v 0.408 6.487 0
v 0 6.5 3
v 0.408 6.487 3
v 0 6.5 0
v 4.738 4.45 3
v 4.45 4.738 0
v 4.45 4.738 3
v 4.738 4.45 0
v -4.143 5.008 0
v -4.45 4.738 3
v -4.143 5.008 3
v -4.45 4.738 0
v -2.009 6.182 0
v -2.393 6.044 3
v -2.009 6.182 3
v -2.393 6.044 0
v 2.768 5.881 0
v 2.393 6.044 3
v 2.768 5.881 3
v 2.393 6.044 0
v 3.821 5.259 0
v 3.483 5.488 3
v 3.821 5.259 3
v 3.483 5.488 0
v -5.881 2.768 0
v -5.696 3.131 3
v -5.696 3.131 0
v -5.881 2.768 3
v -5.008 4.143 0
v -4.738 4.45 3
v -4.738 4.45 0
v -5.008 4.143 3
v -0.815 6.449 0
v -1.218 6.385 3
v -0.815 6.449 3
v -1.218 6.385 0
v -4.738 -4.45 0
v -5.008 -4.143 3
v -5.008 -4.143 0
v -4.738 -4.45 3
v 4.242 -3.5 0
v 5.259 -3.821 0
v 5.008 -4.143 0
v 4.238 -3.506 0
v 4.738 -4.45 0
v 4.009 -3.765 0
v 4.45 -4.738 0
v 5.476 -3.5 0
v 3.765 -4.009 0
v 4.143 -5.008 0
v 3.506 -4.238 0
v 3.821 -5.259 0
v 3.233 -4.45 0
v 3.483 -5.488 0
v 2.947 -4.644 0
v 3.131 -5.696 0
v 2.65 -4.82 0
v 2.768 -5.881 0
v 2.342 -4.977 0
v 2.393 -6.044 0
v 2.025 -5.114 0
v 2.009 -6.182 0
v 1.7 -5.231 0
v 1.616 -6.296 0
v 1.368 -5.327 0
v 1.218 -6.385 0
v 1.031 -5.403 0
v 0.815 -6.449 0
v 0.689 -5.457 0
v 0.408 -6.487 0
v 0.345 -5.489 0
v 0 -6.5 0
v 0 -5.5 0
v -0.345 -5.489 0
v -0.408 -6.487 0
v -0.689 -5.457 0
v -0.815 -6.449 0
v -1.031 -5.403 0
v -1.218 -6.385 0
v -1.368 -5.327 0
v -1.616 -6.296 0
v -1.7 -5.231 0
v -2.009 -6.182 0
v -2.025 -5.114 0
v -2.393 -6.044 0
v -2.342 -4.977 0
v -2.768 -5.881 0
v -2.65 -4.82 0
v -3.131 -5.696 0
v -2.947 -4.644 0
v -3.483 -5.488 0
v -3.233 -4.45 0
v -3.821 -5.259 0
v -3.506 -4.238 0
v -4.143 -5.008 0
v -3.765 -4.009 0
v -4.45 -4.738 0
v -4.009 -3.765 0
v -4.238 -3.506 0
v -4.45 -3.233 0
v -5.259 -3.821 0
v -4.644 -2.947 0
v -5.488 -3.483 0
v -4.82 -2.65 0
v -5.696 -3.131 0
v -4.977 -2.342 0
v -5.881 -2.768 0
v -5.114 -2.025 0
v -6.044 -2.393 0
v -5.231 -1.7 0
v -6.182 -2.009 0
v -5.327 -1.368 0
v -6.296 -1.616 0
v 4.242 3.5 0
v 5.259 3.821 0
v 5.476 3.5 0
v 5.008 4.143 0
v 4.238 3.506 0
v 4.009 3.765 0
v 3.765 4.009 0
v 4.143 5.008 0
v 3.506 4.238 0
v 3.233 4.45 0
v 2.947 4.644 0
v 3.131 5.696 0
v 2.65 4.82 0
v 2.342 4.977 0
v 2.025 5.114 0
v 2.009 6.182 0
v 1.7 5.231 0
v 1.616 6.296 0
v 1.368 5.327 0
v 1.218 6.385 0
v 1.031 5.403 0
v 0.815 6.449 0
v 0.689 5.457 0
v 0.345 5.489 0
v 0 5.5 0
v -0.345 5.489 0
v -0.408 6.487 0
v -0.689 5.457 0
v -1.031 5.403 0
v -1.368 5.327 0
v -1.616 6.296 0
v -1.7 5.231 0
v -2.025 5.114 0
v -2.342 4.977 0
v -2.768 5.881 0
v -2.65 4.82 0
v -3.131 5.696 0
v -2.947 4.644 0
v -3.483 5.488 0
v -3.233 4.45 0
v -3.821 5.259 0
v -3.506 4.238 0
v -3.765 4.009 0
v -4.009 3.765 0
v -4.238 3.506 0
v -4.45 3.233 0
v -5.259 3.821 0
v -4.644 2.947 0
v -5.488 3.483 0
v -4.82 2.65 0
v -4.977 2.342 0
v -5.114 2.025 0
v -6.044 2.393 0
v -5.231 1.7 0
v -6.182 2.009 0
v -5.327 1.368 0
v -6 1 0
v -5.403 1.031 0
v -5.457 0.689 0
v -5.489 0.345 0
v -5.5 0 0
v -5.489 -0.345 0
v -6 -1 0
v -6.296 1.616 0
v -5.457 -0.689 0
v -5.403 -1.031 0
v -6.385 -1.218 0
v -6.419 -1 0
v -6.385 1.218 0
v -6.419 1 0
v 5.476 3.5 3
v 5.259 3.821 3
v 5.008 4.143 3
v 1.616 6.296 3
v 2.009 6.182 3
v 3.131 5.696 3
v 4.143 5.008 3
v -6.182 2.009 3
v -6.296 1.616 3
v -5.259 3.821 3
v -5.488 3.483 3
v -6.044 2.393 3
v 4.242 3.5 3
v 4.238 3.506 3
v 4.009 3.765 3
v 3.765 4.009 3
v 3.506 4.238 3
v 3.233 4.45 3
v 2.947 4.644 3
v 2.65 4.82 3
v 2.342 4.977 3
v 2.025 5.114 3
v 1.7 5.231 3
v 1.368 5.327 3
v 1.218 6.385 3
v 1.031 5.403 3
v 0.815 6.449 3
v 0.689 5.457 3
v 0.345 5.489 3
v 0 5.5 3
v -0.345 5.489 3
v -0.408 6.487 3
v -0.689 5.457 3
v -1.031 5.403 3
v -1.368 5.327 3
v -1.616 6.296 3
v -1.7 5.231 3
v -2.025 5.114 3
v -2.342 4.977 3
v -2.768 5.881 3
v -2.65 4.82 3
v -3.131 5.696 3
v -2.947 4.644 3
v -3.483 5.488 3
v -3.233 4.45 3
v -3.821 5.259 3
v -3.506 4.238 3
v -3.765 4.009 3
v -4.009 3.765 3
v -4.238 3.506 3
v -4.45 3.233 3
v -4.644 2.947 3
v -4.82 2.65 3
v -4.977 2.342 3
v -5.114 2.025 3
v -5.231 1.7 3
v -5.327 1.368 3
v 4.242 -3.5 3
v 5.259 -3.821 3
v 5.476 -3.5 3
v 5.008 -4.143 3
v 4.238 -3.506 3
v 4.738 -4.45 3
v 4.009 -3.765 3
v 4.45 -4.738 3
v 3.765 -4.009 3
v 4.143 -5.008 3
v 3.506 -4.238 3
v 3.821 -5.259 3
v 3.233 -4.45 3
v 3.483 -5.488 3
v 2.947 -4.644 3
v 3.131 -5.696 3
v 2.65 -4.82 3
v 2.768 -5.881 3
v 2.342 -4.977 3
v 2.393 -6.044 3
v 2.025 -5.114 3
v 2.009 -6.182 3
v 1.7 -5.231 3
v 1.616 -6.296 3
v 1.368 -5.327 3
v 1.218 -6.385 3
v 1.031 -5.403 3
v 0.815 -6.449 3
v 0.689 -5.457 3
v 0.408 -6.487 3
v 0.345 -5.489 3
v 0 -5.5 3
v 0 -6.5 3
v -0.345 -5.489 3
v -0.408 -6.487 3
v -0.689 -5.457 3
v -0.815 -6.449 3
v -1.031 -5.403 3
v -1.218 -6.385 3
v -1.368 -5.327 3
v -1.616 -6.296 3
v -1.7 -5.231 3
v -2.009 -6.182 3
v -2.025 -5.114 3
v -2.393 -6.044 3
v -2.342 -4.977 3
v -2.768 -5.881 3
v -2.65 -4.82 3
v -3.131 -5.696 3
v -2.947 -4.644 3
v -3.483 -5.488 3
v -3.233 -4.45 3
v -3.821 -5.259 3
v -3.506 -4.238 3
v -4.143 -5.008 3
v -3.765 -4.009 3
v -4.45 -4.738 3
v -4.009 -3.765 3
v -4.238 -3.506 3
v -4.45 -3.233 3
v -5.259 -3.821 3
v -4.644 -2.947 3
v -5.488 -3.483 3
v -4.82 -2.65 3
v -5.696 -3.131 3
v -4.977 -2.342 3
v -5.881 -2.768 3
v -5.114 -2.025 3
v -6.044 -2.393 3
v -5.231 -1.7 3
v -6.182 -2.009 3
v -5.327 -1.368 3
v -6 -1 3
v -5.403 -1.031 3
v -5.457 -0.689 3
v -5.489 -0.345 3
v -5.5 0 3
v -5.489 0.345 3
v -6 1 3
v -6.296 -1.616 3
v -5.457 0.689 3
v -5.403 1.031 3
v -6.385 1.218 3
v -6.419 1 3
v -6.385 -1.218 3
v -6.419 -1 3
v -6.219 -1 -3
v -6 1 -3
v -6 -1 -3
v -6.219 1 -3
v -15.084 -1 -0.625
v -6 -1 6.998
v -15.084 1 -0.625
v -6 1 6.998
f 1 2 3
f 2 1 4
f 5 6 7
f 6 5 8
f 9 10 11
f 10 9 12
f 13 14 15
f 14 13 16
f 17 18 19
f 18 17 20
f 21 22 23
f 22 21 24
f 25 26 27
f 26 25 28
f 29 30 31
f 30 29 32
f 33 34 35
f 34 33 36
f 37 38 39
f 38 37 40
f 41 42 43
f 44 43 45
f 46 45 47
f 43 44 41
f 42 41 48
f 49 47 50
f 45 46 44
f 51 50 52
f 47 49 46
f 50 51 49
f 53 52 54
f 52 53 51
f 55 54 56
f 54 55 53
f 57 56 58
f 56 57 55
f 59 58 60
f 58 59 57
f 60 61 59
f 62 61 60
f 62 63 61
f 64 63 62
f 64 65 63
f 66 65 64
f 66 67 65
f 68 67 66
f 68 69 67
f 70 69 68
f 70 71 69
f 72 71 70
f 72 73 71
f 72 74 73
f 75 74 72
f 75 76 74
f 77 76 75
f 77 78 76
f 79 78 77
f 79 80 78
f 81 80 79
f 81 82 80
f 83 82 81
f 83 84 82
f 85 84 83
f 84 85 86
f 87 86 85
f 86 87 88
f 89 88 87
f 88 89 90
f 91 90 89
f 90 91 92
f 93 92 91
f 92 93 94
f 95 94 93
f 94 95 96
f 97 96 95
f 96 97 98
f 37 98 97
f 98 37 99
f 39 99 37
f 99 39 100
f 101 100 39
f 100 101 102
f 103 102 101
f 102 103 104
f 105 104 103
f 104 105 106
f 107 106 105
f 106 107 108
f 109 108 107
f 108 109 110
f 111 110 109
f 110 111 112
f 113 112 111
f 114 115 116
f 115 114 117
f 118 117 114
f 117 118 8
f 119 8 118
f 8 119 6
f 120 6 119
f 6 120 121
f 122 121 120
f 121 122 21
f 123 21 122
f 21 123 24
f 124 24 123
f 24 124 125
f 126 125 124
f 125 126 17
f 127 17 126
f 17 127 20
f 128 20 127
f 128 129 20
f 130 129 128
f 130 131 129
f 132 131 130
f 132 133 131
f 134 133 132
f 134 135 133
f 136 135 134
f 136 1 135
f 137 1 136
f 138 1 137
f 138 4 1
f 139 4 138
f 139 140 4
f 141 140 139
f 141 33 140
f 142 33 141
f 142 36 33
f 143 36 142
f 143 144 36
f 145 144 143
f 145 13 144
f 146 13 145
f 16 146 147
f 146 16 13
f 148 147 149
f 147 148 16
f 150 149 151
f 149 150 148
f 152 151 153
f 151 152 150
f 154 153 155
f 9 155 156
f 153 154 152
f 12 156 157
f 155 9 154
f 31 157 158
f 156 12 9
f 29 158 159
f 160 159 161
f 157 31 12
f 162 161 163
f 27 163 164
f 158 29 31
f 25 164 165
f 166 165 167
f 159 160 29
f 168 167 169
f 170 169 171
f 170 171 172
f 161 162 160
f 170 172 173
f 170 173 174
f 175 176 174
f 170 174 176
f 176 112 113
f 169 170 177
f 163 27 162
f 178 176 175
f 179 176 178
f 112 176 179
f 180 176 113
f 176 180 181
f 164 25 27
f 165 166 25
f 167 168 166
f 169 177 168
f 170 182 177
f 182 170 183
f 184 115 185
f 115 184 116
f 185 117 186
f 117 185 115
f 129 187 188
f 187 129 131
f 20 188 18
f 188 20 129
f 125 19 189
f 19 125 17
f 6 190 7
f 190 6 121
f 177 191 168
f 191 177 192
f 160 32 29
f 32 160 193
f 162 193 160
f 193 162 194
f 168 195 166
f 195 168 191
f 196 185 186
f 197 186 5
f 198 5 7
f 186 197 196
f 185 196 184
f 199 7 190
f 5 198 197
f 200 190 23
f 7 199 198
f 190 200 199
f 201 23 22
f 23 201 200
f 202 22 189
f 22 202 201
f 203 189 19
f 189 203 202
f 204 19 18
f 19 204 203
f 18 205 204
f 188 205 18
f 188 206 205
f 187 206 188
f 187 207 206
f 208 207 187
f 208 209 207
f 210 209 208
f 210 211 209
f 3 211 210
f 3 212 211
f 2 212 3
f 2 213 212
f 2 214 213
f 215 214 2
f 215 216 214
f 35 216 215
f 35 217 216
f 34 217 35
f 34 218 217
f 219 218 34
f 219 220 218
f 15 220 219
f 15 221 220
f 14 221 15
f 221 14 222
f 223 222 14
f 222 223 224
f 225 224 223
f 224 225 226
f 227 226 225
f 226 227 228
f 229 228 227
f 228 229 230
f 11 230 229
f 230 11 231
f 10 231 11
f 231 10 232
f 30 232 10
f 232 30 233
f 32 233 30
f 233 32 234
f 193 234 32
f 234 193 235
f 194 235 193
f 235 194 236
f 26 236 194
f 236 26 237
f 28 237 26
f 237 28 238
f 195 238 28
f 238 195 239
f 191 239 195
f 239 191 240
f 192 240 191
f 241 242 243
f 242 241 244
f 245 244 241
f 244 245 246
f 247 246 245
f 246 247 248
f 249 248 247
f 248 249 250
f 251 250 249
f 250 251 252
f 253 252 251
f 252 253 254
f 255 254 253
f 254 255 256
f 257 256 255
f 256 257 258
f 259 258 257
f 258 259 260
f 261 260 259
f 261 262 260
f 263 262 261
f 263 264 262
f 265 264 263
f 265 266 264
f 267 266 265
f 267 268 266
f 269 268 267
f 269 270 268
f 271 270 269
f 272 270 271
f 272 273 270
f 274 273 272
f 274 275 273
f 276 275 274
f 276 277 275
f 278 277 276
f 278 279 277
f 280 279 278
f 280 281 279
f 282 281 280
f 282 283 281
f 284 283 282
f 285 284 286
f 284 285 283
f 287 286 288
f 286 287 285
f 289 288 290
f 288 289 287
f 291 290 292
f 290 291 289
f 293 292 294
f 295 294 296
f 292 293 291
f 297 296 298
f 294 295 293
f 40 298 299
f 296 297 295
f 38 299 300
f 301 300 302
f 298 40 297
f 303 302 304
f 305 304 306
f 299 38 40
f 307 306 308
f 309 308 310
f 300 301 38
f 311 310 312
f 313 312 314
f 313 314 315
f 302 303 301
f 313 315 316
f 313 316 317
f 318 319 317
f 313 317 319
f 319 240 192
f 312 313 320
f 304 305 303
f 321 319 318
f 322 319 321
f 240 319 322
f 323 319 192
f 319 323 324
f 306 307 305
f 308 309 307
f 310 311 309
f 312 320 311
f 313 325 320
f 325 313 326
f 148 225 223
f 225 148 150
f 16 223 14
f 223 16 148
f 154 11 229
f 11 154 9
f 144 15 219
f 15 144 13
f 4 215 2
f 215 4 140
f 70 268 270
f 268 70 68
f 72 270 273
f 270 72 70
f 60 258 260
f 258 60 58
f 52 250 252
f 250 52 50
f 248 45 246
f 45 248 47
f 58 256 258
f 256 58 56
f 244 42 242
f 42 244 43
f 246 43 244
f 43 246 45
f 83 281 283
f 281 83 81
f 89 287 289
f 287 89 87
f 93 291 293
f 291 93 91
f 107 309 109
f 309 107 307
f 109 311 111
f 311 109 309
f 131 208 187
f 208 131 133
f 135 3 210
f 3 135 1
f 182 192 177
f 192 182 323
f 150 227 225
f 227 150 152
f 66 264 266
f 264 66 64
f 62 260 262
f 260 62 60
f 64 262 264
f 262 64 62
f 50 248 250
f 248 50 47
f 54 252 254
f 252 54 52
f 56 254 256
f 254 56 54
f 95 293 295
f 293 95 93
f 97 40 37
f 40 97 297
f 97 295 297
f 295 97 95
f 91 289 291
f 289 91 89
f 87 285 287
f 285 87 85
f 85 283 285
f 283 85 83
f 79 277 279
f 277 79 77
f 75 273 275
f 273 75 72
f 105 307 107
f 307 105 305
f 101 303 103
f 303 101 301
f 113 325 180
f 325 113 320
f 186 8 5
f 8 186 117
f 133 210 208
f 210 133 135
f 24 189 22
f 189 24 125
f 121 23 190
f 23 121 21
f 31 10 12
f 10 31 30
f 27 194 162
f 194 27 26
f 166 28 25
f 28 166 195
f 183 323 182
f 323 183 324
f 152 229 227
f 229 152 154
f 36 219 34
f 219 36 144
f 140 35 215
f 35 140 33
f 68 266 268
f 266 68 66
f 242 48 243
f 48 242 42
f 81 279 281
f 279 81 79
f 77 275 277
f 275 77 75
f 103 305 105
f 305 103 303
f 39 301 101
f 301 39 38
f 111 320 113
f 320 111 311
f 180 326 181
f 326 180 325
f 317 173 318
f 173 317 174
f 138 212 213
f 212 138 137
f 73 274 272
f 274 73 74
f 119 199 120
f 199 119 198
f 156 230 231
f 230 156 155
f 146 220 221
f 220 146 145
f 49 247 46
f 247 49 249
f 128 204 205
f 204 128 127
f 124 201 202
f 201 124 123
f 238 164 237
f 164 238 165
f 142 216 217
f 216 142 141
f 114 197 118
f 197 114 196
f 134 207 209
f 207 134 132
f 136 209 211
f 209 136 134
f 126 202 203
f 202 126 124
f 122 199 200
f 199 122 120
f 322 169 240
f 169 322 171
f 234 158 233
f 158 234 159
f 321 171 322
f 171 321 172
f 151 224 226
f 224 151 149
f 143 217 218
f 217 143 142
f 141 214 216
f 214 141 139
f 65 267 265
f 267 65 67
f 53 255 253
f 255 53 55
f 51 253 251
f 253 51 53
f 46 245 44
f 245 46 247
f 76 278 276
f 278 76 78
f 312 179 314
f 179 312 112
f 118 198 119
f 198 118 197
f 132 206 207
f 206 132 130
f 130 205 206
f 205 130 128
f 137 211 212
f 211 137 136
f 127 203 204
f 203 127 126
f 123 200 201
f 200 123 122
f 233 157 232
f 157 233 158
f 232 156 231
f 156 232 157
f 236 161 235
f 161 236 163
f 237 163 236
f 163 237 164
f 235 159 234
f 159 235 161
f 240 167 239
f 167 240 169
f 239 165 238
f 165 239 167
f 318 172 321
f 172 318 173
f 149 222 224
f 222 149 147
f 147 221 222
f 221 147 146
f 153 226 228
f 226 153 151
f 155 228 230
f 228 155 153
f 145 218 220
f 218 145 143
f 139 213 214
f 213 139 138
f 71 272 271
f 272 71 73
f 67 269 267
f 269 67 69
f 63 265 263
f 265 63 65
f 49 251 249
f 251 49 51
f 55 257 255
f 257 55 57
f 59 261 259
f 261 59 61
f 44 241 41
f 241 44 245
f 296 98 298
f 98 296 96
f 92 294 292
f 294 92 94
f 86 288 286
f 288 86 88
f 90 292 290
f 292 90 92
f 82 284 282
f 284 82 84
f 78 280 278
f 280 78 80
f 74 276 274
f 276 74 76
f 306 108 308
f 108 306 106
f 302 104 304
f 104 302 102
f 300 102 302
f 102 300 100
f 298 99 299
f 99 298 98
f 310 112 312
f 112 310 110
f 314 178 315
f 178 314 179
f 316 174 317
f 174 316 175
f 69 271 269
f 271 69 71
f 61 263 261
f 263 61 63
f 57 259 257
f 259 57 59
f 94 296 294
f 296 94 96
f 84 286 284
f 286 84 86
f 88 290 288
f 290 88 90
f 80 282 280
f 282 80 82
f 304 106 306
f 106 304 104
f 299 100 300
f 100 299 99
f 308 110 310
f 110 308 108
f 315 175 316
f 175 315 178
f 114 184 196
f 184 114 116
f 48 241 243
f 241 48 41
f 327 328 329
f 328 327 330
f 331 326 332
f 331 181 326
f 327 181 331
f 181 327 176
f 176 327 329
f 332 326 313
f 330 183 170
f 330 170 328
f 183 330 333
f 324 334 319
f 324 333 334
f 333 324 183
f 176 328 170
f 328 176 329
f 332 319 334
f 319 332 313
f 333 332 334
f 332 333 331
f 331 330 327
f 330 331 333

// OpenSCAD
// file: ../basic_forms/math_forms.scad
module equal_triangle(length=5, height=2) {
    rotate([0,0,90]) {
        cylinder(d = length, h = height, center = false, $fn = 3);
    }
}

module parallelogram(width = 10, length = 10, height = 2, distortion = 5) {
    start = 0;
    distortedWidth = width + distortion;
    distortedStart = start + distortion;
    width = start + width;
    CubePoints = [
            [ distortedStart, start, start],    //0
            [ distortedWidth, start, start ],   //1
            [ width, length, start ],            //2
            [ start, length, start ],            //3
            [ distortedStart, start,  height ], //4
            [ distortedWidth, start,  height ], //5
            [ width,  length,  height ],         //6
            [ start,  length,  height ]          //7
        ];

    CubeFaces = [
            [0,1,2,3],  // bottom
            [4,5,1,0],  // front
            [7,6,5,4],  // top
            [5,6,2,1],  // right
            [6,7,3,2],  // back
            [7,4,0,3]   // left
    ];

    polyhedron( CubePoints, CubeFaces );
}

module hollow_cylinder(diameter = 10, height = 10, wall_thickness = 2, detail = 100) {
    difference() {
        cylinder(d = diameter, h = height, center = false, $fn = detail);
        cylinder(d = diameter - wall_thickness * 2, h = height, center = false, $fn = detail);
    }
}
// main file
include <../basic_forms/math_forms.scad>

union() {
    fin_holder(height = 3);
    rotate([0,270,90]) {
        translate([2,11,0]) {
            fin();
        }
    }
}

module fin(length = 10, height = 2) {
    difference() {
        cube([length, length, height], center=true);
        translate([10.5,4,0]){
            rotate([0,0,40]) {
                cube([length*2, length*2, height], center=true);
            }
        }
        translate([-13,4,0]){
            rotate([0,0,-15]) {
                cube([length*2, length*2, height], center=true);
            }
        }
    }
}

module fin_holder(diameter = 13, height = 3, opening = 7) {
    difference() {
        hollow_cylinder(diameter = diameter, height = height, wall_thickness = 1);
        rotate([0,0,90]) {
            translate([-opening/2,-diameter/2,0]) {
                cube([opening, diameter/2, height], center=false);
            }
        }
    }
}
